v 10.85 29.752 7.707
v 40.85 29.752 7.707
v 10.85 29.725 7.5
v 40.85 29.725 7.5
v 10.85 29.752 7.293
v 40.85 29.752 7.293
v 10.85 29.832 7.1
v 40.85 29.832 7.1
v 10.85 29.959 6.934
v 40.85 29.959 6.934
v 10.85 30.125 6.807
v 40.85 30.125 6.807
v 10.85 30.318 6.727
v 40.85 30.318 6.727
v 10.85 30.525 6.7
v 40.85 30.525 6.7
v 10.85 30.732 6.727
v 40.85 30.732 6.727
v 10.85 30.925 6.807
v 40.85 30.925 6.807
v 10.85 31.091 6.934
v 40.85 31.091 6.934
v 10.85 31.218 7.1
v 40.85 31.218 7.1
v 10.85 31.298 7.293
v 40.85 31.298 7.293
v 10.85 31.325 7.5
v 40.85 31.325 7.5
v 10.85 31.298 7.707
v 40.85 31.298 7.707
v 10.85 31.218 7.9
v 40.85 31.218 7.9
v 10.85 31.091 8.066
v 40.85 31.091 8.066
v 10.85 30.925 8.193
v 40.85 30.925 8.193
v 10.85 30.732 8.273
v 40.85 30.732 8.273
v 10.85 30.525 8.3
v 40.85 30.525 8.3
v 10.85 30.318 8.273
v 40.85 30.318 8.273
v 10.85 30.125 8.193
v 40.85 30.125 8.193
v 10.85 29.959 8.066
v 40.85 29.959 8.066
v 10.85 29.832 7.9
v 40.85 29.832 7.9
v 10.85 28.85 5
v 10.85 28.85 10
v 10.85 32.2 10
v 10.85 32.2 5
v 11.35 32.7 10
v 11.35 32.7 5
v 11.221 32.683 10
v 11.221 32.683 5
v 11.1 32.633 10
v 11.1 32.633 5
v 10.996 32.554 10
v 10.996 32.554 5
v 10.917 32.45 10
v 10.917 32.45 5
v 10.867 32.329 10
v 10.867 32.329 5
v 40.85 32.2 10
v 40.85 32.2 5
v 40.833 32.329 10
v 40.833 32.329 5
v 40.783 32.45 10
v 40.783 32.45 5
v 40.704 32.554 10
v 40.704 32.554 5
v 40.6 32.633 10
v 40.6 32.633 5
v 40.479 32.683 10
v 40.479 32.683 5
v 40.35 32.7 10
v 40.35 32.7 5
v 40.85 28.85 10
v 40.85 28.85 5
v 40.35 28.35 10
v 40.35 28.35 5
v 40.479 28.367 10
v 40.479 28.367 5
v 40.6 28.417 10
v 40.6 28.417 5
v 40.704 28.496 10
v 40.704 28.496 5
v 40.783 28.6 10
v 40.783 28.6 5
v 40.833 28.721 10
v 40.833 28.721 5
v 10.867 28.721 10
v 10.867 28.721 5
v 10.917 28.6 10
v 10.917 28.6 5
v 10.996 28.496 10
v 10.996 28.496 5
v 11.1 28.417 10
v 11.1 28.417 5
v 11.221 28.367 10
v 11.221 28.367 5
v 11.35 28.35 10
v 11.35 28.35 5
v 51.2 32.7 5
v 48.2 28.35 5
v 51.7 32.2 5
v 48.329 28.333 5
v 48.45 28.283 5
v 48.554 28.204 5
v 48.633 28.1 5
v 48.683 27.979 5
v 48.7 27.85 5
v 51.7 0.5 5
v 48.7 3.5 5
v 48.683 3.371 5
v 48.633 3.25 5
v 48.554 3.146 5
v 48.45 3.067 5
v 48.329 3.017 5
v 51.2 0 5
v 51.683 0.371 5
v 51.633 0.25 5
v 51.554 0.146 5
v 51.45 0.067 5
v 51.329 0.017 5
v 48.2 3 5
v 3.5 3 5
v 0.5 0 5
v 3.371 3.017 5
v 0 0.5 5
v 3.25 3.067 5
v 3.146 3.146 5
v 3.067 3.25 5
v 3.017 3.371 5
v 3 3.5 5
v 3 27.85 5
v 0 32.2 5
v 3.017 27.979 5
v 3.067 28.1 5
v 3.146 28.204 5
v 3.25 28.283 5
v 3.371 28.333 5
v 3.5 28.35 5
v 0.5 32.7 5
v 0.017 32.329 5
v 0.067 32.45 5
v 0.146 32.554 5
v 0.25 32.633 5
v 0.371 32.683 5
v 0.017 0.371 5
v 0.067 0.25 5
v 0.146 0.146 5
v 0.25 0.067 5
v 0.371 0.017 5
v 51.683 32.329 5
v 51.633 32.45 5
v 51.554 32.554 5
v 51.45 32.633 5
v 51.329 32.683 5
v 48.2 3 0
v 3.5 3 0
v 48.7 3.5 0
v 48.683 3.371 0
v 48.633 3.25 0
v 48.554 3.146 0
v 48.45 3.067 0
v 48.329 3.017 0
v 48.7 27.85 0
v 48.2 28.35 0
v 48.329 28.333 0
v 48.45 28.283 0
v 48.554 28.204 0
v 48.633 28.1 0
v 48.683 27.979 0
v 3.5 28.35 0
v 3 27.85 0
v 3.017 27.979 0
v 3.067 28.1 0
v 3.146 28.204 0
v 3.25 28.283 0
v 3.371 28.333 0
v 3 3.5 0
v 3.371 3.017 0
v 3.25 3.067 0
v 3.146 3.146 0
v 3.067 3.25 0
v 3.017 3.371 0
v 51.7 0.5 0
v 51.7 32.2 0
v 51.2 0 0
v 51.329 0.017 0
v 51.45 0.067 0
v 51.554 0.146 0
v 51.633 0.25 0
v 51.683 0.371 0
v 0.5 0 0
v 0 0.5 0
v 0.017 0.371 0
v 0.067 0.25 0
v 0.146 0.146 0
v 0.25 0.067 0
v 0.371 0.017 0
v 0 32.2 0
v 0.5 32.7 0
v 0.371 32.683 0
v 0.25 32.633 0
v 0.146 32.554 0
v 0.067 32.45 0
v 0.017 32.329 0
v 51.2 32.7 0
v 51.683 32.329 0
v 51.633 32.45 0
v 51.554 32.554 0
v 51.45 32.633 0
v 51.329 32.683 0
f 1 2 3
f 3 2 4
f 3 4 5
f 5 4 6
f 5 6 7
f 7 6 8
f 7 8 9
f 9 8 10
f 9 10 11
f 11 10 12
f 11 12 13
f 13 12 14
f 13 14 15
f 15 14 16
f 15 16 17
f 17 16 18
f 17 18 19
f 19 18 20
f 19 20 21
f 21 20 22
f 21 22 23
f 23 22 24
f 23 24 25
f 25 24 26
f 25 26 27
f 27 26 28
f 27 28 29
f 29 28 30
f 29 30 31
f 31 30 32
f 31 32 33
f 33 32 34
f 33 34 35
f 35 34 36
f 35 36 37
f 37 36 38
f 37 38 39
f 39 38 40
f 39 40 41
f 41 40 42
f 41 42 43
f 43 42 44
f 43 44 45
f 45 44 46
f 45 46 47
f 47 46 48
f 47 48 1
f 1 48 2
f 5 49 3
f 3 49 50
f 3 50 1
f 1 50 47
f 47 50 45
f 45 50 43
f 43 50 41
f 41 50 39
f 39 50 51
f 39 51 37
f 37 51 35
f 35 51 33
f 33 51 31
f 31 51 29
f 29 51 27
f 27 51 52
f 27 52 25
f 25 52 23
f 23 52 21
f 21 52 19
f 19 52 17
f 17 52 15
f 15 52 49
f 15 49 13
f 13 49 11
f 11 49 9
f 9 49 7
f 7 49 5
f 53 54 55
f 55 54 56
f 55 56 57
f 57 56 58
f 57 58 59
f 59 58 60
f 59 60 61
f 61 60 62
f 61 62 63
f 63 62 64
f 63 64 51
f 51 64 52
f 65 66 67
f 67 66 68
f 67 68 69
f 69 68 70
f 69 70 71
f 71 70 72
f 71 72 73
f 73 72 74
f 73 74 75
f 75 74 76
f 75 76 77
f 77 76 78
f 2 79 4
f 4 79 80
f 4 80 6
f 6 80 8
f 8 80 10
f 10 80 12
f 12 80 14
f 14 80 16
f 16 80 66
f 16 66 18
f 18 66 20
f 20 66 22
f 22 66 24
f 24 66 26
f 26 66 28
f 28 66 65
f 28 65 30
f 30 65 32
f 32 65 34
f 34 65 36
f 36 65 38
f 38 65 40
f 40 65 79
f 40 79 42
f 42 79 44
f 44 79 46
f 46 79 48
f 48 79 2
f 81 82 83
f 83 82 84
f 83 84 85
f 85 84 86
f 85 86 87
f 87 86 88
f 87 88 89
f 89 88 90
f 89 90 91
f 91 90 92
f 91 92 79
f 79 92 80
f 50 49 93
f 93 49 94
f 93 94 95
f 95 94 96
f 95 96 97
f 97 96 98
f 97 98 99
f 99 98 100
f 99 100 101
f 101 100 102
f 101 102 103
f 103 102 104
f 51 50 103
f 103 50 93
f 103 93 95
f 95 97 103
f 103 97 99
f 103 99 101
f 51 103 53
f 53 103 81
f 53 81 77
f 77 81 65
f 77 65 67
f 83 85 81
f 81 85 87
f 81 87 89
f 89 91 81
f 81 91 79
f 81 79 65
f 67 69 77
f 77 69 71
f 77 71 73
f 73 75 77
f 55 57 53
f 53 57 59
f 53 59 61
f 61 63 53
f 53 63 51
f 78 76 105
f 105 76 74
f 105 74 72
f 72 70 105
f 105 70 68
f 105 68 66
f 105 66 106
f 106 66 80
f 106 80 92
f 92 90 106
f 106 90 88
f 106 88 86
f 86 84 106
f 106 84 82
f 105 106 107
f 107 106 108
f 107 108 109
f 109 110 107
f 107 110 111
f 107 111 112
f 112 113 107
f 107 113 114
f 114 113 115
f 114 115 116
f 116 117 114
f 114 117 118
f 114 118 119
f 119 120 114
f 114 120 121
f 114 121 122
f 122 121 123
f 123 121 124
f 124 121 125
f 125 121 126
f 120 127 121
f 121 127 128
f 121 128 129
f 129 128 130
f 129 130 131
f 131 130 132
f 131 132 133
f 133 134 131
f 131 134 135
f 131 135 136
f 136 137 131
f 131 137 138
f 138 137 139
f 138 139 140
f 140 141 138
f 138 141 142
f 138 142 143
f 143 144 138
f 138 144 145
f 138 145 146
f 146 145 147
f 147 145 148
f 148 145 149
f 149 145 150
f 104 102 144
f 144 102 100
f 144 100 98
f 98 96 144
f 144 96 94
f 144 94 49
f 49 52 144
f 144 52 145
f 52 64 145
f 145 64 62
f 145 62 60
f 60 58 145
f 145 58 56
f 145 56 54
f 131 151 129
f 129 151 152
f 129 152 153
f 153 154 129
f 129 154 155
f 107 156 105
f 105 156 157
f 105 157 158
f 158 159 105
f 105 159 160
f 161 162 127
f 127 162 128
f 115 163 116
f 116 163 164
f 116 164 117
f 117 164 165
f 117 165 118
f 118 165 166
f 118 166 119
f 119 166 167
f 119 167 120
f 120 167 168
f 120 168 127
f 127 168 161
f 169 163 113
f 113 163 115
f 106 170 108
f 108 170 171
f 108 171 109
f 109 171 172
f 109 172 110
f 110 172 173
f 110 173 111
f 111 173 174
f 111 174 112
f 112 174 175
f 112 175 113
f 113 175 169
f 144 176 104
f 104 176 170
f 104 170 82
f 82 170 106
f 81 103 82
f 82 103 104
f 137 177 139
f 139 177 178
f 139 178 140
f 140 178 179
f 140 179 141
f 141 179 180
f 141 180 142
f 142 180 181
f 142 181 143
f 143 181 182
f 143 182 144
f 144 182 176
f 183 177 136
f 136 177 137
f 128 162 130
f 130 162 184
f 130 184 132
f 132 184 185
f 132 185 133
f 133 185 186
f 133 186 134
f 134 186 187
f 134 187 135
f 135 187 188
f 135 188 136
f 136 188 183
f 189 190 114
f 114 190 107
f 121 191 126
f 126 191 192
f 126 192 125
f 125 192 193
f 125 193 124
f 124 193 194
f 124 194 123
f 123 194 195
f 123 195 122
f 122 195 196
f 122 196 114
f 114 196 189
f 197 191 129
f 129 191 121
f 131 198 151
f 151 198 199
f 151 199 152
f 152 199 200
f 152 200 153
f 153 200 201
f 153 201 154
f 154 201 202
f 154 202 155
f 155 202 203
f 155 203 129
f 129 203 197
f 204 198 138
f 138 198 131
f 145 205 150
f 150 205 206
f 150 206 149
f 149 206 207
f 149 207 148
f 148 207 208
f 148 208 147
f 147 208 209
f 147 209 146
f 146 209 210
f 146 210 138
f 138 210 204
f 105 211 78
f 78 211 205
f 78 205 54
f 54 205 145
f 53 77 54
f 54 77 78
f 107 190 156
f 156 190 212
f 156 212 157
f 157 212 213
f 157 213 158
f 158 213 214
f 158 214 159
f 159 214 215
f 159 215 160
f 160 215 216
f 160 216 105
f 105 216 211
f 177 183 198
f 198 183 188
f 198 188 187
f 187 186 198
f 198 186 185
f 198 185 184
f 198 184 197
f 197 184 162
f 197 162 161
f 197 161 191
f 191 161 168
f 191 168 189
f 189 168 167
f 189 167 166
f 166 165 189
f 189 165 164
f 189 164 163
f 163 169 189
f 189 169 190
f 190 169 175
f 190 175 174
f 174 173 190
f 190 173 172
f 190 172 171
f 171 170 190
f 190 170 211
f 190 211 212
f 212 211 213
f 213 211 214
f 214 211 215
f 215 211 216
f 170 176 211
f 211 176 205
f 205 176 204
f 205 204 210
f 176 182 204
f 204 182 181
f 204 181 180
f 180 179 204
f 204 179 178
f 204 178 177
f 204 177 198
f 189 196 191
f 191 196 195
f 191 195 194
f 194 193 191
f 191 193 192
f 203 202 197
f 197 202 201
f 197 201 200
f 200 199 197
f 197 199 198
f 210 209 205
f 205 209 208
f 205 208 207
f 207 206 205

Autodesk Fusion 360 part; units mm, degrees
sketch "Sketch1" plane through (0, 0, 0) normal (0, 0, 1) x (1, 0, 0)
  line L0 (0.5, 0) -> (51.2, 0)
  line L1 (51.7, 0.5) -> (51.7, 32.2)
  line L2 (51.2, 32.7) -> (0.5, 32.7)
  line L3 (0, 32.2) -> (0, 0.5)
  line L4 (51.7, 32.7) -> (0, 0) construction
  line L5 (0, 32.7) -> (51.7, 0) construction
  line L6 (51.7, 16.35) -> (0, 16.35) construction
  line L7 (25.85, 32.7) -> (25.85, 0) construction
  line L8 (51.7, 16.35) -> (48.35, 16.35) construction
  line L9 (0, 16.35) -> (3.35, 16.35) construction
  line L10 (25.85, 0) -> (25.85, 3) construction
  line L11 (25.85, 3) -> (48.2, 3) construction
  line L12 (25.85, 3) -> (0, 3) construction
  line L13 (25.85, 32.7) -> (25.85, 28.35) construction
  line L14 (25.85, 28.35) -> (51.7, 28.35) construction
  line L15 (25.85, 28.35) -> (0, 28.35) construction
  line L16 (3.5, 28.35) -> (48.2, 28.35)
  line L17 (48.7, 27.85) -> (48.7, 3.5)
  line L18 (48.7, 3) -> (3.5, 3)
  line L19 (3, 3.5) -> (3, 27.85)
  arc A0 (0.5, 32.7) -> (0, 32.2) centre (0.5, 32.2) ccw
  arc A1 (3.5, 28.35) -> (3, 27.85) centre (3.5, 27.85) ccw
  arc A2 (3, 3.5) -> (3.5, 3) centre (3.5, 3.5) ccw
  arc A3 (0, 0.5) -> (0.5, 0) centre (0.5, 0.5) ccw
  arc A4 (51.2, 0) -> (51.7, 0.5) centre (51.2, 0.5) ccw
  arc A5 (51.7, 32.2) -> (51.2, 32.7) centre (51.2, 32.2) ccw
  arc A6 (48.7, 27.85) -> (48.2, 28.35) centre (48.2, 27.85) ccw
  arc A7 (48.2, 3) -> (48.7, 3.5) centre (48.2, 3.5) ccw
  point P0 (25.85, 16.35)
  point P1 (48.35, 32.7)
  point P2 (48.35, 0)
  dimension "d1" = 51.7
  dimension "d2" = 32.7
  dimension "d5" = 3
  dimension "d6" = 4.35
  dimension "d7" = 0.5
  dimension "d8" = 0.5
  dimension "d9" = 0.5
  dimension "d10" = 0.5
  dimension "d11" = 0.5
  dimension "d12" = 0.5
  dimension "d13" = 0.5
  dimension "d14" = 0.5
  dimension "d32" = 3
  dimension "d33" = 3
extrude "Extrude1" add sketch "Sketch1" along normal blind 5
sketch "Sketch2" plane through (0, 0, 5) normal (0, 0, 1) x (-1, 0, 0)
  arc A0 (-3, -3.5) -> (-3.5, -3) centre (-3.5, -3.5) ccw
  line L0 (-3, -3.5) -> (-3, -27.85)
  arc A1 (-3.5, -28.35) -> (-3, -27.85) centre (-3.5, -27.85) ccw
  line L1 (-3.5, -28.35) -> (-48.2, -28.35)
  arc A2 (-48.7, -27.85) -> (-48.2, -28.35) centre (-48.2, -27.85) ccw
  line L2 (-48.7, -27.85) -> (-48.7, -3.5)
  arc A3 (-48.2, -3) -> (-48.7, -3.5) centre (-48.2, -3.5) ccw
  line L3 (-48.2, -3) -> (-3.5, -3)
  arc A4 (-51.7, -32.2) -> (-51.2, -32.7) centre (-51.2, -32.2) ccw
  line L4 (-51.2, -32.7) -> (-0.5, -32.7)
  arc A5 (-0.5, -32.7) -> (0, -32.2) centre (-0.5, -32.2) ccw
  line L5 (0, -32.2) -> (0, -0.5)
  arc A6 (0, -0.5) -> (-0.5, 0) centre (-0.5, -0.5) ccw
  line L6 (-0.5, 0) -> (-51.2, 0)
  arc A7 (-51.2, 0) -> (-51.7, -0.5) centre (-51.2, -0.5) ccw
  line L7 (-51.7, -0.5) -> (-51.7, -32.2)
  line L8 (-51.7, -28.35) -> (0, -28.35) construction
  line L9 (-11.35, -32.7) -> (-40.35, -32.7)
  line L10 (-40.85, -32.2) -> (-40.85, -28.85)
  line L11 (-40.35, -28.35) -> (-11.35, -28.35)
  line L12 (-10.85, -28.85) -> (-10.85, -32.2)
  arc A8 (-11.35, -32.7) -> (-10.85, -32.2) centre (-11.35, -32.2) ccw
  arc A9 (-10.85, -28.85) -> (-11.35, -28.35) centre (-11.35, -28.85) ccw
  arc A10 (-40.85, -32.2) -> (-40.35, -32.7) centre (-40.35, -32.2) ccw
  arc A11 (-40.35, -28.35) -> (-40.85, -28.85) centre (-40.35, -28.85) ccw
  point P0 (-10.85, -32.7)
  point P1 (-40.85, -32.7)
  point P2 (-10.85, -32.7)
  point P3 (-40.85, -32.7)
  point P4 (-10.85, -28.35)
  dimension "d19" = 4.35
  dimension "d20" = 30
  dimension "d21" = 4.35
  dimension "d22" = 0.5
  dimension "d23" = 0.5
  dimension "d24" = 0.5
  dimension "d25" = 0.5
extrude "Extrude2" add sketch "Sketch2" along normal blind 5 contours L1 L4 L9 L10 L11 L12 A8 A9 A10 A11
sketch "Sketch3" plane through (40.85, 0, 0) normal (1, 0, 0) x (0, 1, 0)
  line L0 (28.85, 5) -> (32.2, 5)
  line L1 (32.2, 5) -> (32.2, 10)
  line L2 (32.2, 10) -> (28.85, 10)
  line L3 (28.85, 10) -> (28.85, 5)
  line L4 (28.85, 10) -> (32.2, 5) construction
  line L5 (32.2, 10) -> (28.85, 5) construction
  line L6 (32.2, 7.5) -> (28.85, 7.5) construction
  circle A0 centre (30.525, 7.5) radius 0.8
  point P0 (30.525, 7.5)
  dimension "d28" = 1.6
extrude "Extrude3" cut sketch "Sketch3" against normal blind 40 contours A0
